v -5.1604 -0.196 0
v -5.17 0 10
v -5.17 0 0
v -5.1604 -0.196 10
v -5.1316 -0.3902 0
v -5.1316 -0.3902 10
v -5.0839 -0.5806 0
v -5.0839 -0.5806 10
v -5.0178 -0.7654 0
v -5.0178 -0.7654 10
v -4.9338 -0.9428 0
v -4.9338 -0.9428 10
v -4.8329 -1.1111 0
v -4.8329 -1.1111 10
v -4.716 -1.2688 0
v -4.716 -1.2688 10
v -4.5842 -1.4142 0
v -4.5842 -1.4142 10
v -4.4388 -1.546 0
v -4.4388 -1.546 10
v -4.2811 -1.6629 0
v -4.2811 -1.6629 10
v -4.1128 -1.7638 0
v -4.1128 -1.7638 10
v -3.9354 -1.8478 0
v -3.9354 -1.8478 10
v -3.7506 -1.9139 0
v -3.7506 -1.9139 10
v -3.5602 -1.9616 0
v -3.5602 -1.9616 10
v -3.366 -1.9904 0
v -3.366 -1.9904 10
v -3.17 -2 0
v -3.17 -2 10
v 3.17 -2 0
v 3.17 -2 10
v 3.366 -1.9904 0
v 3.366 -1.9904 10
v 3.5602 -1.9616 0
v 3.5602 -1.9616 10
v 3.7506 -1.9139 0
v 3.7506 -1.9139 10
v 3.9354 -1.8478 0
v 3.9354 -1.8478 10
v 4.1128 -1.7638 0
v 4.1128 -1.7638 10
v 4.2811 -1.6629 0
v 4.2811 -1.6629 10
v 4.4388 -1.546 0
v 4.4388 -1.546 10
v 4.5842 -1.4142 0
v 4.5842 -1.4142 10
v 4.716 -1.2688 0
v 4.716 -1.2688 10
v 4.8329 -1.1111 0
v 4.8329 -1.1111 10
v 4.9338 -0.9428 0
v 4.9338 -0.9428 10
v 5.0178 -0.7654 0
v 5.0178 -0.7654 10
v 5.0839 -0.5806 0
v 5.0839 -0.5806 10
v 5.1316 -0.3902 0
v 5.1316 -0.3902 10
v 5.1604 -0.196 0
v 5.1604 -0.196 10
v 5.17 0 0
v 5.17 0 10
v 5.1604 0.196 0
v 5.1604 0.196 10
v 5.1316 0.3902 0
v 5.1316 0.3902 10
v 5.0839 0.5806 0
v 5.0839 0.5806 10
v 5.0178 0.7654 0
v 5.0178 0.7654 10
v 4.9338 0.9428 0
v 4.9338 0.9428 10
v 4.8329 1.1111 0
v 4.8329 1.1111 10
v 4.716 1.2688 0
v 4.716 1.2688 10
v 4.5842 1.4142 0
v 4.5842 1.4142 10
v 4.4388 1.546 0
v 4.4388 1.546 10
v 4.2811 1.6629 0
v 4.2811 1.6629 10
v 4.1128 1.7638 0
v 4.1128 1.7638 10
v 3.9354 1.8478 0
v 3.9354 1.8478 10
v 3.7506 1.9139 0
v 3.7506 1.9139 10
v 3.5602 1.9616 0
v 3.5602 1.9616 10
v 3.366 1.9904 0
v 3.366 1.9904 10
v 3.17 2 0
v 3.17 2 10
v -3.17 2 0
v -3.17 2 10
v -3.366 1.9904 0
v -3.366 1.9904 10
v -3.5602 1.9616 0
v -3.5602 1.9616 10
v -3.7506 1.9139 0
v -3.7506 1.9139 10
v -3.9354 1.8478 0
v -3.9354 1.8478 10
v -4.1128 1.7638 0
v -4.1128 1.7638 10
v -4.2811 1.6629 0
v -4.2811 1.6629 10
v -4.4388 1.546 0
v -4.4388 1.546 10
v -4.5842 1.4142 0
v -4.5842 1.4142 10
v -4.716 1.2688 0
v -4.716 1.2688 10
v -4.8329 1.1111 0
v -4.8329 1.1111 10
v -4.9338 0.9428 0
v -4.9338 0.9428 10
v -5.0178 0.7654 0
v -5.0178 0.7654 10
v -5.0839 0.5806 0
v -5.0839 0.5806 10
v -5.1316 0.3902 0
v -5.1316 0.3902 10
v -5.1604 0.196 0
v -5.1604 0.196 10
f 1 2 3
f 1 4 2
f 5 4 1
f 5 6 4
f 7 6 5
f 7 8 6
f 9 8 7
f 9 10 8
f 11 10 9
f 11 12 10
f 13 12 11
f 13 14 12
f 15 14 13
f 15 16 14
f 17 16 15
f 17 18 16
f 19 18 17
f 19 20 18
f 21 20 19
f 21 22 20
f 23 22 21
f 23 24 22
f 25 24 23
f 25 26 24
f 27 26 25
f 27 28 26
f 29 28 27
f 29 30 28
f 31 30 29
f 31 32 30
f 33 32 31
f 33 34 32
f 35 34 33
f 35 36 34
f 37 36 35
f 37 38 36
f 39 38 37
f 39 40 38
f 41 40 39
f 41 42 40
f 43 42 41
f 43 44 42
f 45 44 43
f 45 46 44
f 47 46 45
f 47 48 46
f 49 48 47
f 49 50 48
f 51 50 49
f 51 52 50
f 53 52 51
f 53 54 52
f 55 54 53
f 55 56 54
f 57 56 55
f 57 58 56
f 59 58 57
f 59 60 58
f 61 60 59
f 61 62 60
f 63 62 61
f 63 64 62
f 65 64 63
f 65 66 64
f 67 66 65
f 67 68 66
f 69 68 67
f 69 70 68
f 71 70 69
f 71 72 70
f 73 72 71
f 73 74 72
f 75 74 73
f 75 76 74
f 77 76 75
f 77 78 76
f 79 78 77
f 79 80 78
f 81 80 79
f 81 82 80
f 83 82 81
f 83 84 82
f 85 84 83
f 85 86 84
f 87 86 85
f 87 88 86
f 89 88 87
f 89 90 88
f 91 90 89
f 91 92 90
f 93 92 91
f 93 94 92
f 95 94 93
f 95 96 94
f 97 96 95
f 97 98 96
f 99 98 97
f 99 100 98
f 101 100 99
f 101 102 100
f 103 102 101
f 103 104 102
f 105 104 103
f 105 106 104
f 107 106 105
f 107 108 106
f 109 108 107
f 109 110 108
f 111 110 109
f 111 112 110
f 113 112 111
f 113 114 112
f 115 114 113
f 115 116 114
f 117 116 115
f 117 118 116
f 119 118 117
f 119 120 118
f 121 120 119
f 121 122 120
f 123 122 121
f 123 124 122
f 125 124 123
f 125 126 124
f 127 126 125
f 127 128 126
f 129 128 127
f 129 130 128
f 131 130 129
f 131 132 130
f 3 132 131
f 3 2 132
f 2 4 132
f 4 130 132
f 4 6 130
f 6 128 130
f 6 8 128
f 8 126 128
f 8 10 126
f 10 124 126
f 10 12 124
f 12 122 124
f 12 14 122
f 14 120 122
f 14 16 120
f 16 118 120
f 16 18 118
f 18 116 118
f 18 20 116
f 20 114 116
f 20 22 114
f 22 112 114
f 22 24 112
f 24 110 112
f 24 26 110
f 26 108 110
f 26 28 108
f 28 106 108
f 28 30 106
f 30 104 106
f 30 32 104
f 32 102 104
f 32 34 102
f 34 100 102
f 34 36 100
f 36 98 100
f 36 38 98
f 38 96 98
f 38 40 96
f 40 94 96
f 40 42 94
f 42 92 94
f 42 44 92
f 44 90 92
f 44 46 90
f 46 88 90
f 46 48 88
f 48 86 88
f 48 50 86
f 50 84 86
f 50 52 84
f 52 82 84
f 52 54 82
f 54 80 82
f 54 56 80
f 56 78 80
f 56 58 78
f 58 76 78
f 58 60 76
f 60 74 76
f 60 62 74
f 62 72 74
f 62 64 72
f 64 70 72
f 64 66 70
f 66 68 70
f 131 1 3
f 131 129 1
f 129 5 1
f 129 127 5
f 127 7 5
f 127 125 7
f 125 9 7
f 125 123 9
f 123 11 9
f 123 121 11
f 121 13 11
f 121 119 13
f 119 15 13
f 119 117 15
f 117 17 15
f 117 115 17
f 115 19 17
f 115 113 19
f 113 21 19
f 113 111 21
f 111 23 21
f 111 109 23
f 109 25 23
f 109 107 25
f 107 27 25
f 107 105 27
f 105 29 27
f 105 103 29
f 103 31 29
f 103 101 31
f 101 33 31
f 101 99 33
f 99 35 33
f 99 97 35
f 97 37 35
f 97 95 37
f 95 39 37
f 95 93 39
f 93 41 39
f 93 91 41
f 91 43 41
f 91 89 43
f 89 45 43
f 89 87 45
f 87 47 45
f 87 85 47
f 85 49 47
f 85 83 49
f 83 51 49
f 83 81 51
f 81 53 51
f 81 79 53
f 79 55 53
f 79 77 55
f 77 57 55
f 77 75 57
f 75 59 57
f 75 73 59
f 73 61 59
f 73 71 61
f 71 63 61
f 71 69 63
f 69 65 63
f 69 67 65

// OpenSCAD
// ============================================================
//  USB-C Cutout Gauge
//  Matches the oval hole cut in xiao-tub.scad exactly.
//  Print this to verify the cutout fits your USB-C connector
//  before printing the full tub.
//
//  Dimensions (from xiao-tub.scad):
//    Width:  usbc_hole_w = 8.94 + 1.4 = 10.34 mm
//    Height: usbc_conn_h = 4.00 mm  (radius = 2.00 mm)
//    Shape:  stadium (hull of two circles)
// ============================================================

// Mirror of xiao-tub.scad values — keep in sync if tub changes
usbc_conn_w  = 8.94;
usbc_conn_h  = 4;
usbc_hole_r  = usbc_conn_h / 2;
usbc_hole_w  = usbc_conn_w + 1.4;

gauge_depth  = 10.0;   // extrusion thickness of the gauge

linear_extrude(height = gauge_depth)
    hull() {
        translate([ usbc_hole_w/2 - usbc_hole_r, 0])
            circle(r = usbc_hole_r, $fn = 64);
        translate([-(usbc_hole_w/2 - usbc_hole_r), 0])
            circle(r = usbc_hole_r, $fn = 64);
    }
